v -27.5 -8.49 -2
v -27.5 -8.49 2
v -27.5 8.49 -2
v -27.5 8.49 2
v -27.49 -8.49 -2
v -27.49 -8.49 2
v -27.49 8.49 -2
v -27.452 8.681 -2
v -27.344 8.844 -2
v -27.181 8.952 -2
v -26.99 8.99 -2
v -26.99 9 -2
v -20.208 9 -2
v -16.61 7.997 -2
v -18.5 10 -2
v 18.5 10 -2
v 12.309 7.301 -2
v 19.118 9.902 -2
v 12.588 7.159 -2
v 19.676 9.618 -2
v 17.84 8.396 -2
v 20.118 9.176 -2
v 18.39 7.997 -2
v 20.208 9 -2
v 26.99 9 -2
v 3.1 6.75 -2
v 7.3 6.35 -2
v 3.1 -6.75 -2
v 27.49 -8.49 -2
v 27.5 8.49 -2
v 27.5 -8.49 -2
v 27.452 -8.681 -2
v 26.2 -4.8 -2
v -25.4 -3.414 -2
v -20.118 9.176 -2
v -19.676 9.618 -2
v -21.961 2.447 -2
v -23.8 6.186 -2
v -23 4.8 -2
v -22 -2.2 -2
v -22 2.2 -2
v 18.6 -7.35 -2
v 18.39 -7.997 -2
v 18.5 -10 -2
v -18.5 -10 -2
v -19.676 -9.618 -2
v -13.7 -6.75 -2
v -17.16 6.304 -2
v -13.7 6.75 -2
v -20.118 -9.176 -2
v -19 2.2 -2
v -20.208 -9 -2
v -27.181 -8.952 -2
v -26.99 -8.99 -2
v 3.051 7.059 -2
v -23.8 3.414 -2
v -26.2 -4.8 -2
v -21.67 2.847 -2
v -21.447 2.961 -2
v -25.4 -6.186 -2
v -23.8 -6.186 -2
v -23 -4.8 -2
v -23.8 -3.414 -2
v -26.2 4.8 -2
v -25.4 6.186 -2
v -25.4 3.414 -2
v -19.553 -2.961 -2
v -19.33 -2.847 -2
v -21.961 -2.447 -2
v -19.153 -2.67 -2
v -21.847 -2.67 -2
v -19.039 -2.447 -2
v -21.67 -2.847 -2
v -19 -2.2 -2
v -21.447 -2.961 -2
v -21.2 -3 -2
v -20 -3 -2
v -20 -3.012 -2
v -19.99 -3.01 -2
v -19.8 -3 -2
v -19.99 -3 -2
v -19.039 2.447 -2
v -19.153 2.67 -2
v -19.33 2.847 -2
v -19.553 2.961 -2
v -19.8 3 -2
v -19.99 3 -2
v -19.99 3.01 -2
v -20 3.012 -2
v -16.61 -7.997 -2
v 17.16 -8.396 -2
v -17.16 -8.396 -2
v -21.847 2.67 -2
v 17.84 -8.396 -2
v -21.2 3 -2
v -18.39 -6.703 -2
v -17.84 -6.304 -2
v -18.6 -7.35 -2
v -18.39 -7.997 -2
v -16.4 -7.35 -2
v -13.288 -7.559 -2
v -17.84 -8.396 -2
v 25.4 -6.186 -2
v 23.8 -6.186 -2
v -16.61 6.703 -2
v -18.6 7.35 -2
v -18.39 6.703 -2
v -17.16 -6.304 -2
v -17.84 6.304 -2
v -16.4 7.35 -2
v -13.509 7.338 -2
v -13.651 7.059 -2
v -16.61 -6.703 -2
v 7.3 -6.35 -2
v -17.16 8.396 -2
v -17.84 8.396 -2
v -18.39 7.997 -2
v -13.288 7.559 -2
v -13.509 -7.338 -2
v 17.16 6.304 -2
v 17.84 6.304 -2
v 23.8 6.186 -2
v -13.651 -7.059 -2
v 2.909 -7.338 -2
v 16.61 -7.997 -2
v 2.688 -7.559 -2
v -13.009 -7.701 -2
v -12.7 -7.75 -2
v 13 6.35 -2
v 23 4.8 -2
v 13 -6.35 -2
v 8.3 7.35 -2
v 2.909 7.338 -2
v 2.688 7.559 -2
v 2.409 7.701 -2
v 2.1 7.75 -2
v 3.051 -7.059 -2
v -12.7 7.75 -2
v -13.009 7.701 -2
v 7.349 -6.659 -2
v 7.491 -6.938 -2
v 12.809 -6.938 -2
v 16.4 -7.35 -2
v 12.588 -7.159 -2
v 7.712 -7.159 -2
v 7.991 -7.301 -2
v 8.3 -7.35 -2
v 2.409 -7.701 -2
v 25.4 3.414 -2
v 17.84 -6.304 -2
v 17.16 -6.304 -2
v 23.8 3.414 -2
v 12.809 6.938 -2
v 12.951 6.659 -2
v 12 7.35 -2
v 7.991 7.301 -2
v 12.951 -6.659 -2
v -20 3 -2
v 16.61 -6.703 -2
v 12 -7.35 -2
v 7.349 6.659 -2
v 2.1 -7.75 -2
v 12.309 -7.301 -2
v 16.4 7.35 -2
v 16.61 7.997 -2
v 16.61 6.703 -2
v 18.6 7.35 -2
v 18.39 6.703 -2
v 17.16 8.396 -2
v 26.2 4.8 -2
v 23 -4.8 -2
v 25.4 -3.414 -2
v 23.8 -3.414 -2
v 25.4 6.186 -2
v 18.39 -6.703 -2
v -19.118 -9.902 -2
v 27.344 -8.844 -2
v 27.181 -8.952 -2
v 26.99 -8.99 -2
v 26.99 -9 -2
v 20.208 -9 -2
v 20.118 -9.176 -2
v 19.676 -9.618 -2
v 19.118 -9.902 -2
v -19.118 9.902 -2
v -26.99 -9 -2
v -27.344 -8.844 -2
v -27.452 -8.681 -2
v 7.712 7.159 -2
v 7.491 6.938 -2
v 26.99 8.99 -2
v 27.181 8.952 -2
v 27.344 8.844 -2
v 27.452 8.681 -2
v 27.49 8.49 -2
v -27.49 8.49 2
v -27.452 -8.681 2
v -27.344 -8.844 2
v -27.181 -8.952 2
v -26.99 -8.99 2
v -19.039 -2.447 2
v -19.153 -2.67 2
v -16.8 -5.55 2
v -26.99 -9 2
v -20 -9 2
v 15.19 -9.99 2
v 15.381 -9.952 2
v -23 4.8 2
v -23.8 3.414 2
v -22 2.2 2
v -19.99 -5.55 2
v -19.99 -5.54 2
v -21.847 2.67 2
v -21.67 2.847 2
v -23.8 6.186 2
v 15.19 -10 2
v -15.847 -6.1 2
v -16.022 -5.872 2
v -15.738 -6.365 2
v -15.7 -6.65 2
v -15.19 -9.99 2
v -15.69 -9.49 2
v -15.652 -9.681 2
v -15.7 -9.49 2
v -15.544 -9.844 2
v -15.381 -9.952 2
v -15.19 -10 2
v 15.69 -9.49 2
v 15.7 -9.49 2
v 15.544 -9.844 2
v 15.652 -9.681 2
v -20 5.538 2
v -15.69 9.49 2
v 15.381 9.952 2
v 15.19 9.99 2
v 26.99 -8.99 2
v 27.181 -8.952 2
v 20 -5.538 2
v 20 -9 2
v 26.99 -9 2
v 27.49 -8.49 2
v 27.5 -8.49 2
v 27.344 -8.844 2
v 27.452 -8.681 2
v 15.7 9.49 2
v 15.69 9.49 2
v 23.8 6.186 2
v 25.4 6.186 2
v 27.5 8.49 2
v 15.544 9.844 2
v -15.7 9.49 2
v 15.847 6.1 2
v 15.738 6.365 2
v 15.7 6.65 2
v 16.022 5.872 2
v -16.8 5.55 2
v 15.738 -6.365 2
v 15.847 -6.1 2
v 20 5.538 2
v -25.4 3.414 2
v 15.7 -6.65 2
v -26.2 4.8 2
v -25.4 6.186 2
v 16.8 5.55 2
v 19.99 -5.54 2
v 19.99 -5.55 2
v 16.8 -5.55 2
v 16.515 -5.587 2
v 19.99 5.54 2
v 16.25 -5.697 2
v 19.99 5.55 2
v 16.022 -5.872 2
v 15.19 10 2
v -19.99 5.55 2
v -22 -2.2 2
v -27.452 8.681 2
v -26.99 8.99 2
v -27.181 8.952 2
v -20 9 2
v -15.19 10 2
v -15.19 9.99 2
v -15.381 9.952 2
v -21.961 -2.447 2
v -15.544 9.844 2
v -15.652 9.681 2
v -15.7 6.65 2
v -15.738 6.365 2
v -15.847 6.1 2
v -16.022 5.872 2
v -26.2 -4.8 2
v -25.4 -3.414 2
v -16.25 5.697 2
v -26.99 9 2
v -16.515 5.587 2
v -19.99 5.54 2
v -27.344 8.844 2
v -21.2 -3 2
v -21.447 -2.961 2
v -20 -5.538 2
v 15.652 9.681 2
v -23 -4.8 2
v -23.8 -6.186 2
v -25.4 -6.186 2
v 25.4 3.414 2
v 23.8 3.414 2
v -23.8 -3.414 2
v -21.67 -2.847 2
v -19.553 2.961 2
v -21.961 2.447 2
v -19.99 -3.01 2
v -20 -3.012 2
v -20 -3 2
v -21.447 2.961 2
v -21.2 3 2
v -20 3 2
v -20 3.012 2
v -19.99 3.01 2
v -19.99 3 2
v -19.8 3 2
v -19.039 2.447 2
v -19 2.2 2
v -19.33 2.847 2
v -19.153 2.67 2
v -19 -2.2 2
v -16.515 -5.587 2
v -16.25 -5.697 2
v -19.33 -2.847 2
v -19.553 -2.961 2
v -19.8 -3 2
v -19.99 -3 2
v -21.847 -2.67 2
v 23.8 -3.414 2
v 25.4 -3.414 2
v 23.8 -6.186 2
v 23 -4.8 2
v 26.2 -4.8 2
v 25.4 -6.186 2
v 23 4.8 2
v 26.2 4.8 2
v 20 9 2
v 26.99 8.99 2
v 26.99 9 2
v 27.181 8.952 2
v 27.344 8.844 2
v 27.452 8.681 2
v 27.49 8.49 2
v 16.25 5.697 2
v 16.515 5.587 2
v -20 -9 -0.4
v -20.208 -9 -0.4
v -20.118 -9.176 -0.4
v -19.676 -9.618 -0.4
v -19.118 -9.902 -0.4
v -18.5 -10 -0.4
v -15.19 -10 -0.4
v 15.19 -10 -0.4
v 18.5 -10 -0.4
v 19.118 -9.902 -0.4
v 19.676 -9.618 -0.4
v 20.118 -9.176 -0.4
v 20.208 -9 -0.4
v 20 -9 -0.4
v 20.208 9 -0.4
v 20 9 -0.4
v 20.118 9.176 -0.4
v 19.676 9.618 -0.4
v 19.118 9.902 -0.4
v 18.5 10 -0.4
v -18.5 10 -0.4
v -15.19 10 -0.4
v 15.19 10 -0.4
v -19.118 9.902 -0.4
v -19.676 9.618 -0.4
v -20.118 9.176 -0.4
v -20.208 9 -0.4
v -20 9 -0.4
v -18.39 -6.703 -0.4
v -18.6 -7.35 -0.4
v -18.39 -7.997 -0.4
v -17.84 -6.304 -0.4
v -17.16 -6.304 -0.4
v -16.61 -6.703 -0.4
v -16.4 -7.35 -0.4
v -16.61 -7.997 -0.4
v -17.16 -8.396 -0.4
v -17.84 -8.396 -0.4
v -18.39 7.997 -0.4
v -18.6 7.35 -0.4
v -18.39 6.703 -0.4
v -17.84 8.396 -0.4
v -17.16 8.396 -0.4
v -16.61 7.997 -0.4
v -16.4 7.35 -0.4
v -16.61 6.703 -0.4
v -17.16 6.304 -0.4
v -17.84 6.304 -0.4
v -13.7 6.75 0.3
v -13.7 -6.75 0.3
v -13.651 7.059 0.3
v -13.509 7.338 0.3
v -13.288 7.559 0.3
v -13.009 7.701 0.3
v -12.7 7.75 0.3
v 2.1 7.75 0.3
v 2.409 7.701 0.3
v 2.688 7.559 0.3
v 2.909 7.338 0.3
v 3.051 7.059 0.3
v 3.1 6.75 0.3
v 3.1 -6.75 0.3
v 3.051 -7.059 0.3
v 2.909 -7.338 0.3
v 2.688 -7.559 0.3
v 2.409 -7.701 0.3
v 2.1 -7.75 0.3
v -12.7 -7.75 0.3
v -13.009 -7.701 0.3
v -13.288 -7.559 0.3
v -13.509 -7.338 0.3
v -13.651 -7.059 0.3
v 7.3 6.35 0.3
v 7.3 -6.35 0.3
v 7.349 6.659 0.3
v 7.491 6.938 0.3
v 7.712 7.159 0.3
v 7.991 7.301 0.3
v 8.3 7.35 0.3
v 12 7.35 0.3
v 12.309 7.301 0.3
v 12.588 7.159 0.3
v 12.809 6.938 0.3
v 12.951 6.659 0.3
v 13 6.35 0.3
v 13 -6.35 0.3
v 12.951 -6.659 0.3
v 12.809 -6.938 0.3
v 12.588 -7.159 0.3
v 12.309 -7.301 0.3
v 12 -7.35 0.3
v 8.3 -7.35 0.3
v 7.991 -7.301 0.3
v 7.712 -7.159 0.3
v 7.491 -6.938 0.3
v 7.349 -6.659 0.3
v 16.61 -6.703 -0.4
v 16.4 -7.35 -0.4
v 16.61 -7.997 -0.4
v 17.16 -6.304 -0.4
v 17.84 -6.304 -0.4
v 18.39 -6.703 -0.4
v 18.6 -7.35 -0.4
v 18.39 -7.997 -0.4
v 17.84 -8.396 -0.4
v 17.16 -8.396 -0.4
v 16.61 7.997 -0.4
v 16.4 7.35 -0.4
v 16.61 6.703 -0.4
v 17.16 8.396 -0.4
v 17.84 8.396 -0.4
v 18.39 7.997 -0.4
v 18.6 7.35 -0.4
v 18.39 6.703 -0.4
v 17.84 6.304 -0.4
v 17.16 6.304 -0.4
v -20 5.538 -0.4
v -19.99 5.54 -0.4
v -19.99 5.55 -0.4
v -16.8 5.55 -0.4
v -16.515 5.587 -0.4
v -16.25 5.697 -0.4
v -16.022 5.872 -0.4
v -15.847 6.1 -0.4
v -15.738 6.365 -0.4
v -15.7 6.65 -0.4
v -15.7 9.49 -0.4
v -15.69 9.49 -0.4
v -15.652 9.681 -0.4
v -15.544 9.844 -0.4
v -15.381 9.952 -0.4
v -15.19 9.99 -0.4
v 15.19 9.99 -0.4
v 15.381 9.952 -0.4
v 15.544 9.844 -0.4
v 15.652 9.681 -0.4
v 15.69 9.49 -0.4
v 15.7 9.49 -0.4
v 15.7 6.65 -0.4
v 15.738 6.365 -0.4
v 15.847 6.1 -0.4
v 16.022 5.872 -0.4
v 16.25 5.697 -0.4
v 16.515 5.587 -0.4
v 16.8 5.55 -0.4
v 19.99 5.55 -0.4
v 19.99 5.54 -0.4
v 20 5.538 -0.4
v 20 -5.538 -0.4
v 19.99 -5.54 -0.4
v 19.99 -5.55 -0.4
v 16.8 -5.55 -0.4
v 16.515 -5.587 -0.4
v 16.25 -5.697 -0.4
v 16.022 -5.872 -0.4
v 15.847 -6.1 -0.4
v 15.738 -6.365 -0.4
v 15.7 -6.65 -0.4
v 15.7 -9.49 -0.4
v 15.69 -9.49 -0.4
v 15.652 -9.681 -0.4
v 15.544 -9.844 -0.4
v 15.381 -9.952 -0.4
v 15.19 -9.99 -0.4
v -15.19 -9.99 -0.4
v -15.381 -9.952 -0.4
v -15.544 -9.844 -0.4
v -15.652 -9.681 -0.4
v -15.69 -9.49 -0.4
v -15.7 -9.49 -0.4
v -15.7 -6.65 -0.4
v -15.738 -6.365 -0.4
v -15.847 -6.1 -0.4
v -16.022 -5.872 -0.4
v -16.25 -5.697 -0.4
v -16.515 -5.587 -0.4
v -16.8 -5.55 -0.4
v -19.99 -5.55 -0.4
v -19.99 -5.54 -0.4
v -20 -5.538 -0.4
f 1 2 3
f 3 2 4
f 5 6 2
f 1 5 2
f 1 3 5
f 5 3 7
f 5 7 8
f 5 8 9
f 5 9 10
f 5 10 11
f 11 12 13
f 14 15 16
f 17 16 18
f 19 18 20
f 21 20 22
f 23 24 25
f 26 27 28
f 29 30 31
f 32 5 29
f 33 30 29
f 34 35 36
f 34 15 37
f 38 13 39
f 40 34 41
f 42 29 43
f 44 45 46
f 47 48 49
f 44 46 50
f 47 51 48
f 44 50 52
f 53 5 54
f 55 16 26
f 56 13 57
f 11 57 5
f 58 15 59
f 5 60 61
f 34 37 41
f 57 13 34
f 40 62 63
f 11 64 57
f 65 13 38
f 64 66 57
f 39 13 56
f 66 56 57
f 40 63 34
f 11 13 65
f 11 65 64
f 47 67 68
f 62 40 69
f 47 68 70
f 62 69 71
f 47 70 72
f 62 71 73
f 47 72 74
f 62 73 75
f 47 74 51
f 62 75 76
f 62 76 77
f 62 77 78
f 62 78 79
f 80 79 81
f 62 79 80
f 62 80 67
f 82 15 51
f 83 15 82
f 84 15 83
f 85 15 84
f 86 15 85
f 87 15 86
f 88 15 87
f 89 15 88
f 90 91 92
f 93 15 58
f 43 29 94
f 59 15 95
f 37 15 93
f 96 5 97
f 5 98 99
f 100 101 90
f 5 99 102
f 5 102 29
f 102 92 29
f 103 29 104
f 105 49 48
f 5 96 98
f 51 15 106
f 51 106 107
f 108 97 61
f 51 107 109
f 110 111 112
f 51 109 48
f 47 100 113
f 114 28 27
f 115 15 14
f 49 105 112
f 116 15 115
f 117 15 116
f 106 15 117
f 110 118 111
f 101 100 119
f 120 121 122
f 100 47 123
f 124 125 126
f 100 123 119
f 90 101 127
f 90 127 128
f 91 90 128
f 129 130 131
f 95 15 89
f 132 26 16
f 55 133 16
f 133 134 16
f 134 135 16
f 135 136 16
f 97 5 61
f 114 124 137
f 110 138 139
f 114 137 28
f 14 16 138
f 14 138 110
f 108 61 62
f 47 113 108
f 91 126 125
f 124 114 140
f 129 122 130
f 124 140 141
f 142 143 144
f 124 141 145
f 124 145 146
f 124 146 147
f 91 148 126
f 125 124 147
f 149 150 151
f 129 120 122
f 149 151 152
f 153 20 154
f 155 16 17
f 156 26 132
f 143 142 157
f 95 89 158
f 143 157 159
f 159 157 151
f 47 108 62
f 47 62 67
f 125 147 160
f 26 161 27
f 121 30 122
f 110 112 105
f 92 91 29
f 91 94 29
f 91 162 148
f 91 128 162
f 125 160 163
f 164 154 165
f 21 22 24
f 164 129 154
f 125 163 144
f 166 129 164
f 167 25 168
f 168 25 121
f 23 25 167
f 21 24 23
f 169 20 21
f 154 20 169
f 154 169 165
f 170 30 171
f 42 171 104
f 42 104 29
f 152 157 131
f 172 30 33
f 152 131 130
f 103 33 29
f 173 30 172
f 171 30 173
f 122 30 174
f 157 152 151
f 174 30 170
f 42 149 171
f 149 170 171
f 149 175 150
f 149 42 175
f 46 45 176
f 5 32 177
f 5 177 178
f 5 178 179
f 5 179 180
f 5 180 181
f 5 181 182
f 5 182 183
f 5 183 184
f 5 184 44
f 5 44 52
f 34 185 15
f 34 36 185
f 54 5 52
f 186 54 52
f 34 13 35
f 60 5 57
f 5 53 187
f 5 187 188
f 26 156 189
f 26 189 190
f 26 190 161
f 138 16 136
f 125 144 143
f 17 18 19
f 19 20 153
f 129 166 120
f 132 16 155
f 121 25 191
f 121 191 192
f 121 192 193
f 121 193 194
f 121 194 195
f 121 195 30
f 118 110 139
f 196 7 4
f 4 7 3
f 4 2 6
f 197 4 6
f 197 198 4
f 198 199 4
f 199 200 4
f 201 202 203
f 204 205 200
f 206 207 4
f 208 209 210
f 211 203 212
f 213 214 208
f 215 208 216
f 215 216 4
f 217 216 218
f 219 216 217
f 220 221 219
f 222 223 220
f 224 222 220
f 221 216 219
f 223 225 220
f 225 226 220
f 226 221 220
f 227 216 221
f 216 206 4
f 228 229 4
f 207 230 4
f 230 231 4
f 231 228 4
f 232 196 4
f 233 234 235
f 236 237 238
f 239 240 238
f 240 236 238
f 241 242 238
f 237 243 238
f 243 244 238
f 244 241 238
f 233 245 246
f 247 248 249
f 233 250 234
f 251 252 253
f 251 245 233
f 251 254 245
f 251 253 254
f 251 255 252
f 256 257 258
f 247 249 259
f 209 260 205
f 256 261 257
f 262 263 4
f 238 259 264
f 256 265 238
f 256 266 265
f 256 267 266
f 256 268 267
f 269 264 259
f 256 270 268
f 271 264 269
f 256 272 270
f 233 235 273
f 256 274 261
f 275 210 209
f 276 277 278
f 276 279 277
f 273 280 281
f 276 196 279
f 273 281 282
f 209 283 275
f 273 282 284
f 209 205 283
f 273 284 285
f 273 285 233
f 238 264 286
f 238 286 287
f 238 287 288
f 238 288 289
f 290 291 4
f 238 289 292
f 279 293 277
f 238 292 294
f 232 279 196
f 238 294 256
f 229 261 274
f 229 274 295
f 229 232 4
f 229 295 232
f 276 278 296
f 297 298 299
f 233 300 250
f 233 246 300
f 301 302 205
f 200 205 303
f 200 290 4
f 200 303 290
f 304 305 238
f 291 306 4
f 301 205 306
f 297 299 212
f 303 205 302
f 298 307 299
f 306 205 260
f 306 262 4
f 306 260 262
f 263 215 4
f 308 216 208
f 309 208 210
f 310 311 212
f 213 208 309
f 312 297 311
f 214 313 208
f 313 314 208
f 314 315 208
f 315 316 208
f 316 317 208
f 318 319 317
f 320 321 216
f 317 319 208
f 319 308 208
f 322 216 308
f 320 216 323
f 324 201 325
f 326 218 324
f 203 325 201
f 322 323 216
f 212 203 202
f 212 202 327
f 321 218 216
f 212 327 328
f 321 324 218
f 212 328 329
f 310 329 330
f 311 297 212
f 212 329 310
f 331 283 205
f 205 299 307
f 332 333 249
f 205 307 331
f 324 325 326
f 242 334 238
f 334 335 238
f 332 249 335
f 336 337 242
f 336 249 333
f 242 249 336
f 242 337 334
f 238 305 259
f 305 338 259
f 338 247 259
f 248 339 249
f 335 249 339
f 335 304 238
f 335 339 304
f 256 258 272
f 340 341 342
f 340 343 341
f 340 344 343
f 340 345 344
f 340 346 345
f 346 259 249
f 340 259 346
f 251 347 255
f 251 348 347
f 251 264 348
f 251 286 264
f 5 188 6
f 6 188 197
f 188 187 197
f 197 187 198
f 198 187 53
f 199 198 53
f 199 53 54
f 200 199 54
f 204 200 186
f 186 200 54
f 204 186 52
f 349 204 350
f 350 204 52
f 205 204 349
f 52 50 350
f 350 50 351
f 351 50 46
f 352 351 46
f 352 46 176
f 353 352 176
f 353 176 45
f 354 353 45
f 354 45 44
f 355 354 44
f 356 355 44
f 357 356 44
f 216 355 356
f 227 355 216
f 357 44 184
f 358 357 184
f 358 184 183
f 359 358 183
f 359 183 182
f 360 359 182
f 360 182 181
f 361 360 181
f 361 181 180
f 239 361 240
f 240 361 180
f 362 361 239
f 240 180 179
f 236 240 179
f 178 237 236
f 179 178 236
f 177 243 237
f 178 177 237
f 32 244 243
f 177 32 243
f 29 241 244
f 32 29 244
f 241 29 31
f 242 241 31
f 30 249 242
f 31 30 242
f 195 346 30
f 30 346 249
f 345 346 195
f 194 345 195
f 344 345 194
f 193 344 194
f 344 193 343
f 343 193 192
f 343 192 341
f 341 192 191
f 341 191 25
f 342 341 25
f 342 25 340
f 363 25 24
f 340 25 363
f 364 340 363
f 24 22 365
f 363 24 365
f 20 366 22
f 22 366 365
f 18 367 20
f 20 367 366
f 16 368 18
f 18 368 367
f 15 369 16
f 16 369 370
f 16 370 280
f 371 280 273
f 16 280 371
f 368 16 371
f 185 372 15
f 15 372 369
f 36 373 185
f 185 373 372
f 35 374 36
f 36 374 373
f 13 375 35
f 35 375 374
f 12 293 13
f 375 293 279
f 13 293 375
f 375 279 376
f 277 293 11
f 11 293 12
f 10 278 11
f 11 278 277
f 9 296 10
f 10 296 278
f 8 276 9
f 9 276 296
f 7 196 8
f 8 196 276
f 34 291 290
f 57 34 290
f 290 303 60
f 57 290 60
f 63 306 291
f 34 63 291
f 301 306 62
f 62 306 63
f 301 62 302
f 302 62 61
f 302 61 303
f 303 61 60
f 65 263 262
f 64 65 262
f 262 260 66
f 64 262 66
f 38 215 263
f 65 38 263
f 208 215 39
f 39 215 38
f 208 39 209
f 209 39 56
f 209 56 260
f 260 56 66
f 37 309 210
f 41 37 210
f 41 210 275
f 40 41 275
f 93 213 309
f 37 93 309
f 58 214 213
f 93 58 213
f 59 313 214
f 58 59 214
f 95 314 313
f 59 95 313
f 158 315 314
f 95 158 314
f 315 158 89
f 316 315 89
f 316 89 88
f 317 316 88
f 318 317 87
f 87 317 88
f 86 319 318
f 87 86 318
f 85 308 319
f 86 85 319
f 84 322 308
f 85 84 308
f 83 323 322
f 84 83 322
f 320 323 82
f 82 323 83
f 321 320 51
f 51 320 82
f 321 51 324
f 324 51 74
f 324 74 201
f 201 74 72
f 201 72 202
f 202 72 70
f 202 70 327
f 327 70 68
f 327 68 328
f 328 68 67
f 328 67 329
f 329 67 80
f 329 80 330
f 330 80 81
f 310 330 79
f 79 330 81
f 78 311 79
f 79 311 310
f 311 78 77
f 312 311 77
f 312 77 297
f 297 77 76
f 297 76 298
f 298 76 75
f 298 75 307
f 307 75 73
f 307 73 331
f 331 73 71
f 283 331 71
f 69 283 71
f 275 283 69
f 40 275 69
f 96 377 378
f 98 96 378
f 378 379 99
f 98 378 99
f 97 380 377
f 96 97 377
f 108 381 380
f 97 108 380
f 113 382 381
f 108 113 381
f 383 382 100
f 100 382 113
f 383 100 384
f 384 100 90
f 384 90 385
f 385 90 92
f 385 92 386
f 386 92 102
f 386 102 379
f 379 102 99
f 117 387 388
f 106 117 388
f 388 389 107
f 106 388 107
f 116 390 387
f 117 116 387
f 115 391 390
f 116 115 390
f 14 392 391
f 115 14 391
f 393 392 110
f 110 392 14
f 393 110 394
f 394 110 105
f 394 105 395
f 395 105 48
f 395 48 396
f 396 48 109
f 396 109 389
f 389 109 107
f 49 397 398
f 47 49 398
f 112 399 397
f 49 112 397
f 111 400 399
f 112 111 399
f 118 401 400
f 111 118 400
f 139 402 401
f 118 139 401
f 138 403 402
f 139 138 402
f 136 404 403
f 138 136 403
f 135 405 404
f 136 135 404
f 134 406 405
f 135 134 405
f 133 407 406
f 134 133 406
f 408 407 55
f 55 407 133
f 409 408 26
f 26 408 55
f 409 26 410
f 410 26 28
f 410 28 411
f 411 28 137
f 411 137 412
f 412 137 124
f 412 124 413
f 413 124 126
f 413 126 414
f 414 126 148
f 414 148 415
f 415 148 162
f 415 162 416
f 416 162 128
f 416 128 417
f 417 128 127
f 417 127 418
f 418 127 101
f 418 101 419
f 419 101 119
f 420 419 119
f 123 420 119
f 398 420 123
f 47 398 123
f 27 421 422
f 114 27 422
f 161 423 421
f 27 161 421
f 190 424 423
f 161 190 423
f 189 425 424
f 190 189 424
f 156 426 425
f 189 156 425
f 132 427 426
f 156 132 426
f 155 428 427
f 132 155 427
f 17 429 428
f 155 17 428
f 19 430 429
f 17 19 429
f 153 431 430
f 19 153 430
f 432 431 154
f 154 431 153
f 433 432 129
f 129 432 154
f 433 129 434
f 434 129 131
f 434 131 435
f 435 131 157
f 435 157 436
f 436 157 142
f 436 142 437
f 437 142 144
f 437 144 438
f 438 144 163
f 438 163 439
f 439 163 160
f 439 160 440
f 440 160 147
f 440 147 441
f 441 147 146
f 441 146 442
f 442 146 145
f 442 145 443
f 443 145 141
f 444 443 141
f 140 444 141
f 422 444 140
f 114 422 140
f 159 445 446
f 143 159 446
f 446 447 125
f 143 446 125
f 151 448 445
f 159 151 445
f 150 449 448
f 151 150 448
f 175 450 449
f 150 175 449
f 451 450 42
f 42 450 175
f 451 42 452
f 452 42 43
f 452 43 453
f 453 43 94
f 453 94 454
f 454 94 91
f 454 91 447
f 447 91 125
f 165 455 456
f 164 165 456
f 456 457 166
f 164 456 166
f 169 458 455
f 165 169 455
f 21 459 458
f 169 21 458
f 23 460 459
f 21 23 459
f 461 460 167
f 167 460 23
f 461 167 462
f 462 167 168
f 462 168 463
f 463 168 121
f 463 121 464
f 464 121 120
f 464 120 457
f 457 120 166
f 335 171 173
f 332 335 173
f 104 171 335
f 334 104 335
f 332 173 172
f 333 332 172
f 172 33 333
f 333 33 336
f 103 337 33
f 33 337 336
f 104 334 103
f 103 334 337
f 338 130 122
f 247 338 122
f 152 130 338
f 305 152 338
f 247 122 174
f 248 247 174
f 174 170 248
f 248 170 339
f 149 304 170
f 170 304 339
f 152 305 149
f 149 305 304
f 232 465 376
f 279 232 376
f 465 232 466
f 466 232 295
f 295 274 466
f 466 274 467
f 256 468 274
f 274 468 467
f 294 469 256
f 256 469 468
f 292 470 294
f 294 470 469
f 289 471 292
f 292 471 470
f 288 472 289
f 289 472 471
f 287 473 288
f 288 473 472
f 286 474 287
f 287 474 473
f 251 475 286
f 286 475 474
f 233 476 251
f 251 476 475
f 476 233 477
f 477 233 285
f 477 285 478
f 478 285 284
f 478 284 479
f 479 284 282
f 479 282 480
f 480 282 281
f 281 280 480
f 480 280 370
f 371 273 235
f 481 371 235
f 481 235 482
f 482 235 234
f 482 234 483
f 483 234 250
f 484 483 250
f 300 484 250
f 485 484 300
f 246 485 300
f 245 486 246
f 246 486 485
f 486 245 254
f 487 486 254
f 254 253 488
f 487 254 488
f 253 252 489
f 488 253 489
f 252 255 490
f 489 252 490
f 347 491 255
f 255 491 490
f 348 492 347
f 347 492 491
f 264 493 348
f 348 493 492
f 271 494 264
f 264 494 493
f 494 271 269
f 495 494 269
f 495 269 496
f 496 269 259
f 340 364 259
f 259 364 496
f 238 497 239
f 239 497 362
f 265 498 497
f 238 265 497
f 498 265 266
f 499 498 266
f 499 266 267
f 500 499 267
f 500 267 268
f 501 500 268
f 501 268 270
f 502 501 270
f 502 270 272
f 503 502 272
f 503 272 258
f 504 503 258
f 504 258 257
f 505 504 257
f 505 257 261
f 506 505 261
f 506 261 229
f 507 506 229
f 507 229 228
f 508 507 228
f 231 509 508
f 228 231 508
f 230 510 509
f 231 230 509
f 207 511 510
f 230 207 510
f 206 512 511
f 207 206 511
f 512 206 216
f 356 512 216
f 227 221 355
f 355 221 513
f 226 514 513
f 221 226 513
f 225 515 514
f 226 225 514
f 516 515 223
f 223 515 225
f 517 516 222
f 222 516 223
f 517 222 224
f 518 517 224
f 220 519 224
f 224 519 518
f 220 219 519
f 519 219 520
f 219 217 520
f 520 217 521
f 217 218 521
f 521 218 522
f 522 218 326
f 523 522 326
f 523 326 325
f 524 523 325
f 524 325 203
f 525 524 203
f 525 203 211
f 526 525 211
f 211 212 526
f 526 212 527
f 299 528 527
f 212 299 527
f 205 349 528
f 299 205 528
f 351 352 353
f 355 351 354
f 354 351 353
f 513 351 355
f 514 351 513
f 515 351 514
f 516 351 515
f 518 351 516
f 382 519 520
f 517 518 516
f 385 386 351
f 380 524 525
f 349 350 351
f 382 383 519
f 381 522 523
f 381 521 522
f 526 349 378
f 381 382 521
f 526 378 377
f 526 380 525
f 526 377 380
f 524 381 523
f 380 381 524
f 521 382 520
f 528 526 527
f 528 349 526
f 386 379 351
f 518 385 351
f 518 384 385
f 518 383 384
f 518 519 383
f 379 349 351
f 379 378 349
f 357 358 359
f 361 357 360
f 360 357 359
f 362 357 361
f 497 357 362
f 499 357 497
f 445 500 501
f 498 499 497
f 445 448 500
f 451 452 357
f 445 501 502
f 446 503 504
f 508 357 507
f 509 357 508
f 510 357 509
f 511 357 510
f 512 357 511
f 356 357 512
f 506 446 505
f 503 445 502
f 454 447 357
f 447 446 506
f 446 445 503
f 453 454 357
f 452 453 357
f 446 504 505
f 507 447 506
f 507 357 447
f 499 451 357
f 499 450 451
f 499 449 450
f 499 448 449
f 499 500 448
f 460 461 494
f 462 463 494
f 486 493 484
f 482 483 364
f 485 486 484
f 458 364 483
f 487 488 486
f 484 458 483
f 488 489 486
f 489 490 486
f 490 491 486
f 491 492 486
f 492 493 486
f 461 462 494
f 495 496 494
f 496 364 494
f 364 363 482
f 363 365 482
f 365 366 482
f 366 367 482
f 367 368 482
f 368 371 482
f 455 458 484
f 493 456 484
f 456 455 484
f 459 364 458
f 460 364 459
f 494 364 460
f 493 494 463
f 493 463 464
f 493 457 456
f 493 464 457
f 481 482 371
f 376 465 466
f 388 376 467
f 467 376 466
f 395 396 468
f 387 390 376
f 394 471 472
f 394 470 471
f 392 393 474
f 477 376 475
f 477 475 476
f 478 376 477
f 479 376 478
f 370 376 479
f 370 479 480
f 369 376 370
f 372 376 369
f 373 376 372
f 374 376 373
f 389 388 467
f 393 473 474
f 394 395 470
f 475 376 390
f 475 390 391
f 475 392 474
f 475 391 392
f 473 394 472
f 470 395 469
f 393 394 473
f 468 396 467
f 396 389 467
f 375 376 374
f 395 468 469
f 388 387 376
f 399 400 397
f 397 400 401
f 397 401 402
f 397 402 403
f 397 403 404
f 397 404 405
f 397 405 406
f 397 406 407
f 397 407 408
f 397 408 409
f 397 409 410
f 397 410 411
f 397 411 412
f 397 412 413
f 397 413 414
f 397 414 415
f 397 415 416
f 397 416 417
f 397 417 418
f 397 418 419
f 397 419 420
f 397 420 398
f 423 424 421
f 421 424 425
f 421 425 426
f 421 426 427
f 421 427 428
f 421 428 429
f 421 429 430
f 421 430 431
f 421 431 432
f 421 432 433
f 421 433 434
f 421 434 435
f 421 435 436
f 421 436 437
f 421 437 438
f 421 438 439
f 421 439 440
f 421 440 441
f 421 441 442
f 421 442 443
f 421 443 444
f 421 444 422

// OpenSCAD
// file: obiscad/attach.scad
//---------------------------------------------------------------
//-- Openscad Attachment library
//-- Attach easily parts. Make your designs more reusable
//---------------------------------------------------------------
//-- This is a component of the obiscad opescad tools by Obijuan
//-- (C) Juan Gonzalez-Gomez (Obijuan)
//-- Sep-2012
//---------------------------------------------------------------
//-- Released under the GPL license
//---------------------------------------------------------------

use <vector.scad>

module connector(c)
{
  p = c[0];
  v = c[1];
  ang = c[2];

  color("Gray") point(p);
  translate(p)
    color("Gray") vector(unitv(v)*6,l_arrow=2);
}


//-- a,b are connectors
module attach(a,b)
{
  //-- Get the data from the connectors
  vref = b[1];
  v = a[1];
  roll=a[2];
  pos1 = a[0];
  pos2 = b[0];

  //-------- Calculations for the "orientate operator"
  //-- Calculate the rotation axis
  raxis = cross(vref,v);
    
  //-- Calculate the angle between the vectors
  ang = anglev(vref,v);

  translate(pos1)
    //-- Orientate operator
    rotate(a=roll, v=v)  rotate(a=ang, v=raxis)
      translate(-pos2)
	child(0); 
}

module arm(debug=false)
{
  
  cube(asize,center=true);

  if (debug) {
    frame(l=10);
    connector(a);
  }
}

module Test()
{
  cube(size,center=true);
  attach(c1,a) arm(debug=true);
  attach(c2,a) arm();
}

//-- Main part
size = [10,10,10];
c1 = [ [0,0,size[2]/2], [0,0,1], 10];
c2 = [ [-size[0]/2,0,0], [-1,0,0], 90 ];

*connector(c1);
*connector(c2);
*cube(size,center=true);


//-- Attachable part
asize = [5,20,3];
a = [ [0,asize[1]/2-3,-asize[2]/2], [0,0,1], 0  ];

*translate([30,0,0])  arm(debug=true);

*attach(c1,a) arm();
*attach(c2,a) arm();
  

orientate([1,1,1])
Test();
// file: obiscad/bcube.scad
//------------------------------------------------------------------------------
//  Bevel edge cube.
//  (c) Juan Gonzalez-Gomez (Obijuan), Sep-2012
//------------------------------------------------------------------------------

//----------------- IMPLEMENTATION USING THE MINKOWSKI OPERATOR ----------------

//------------------------------------------------------------------------------
//-- Bevel Cube main function
//-- Parameters:
//--   * Size:  Cube size
//--   * cr : Corner radius (if cr==0, a standar cube is built)
//--   * cres:  Corner resolution (in points). cres=0 means flat corners
//------------------------------------------------------------------------------
module bcube(size,cr=0,cres=0)
{
  //-- Internal cube size
  bsize = size - 2*[cr,cr,0];

  //-- Get the (x,y) coorner coordinates in the 1st cuadrant
  x = bsize[0]/2;
  y = bsize[1]/2;

  //-- A corner radius of 0 means a standar cube!
  if (cr==0)
    cube(bsize,center=true);
  else {

      
      //-- The height of minkowski object is double. So
      //-- we sould scale by 0.5
      scale([1,1,0.5])

      //-- This translation is for centering the minkowski objet
      translate([-x, -y,0])

      //-- Built the  beveled cube with minkowski
      minkowski() {

        //-- Internal cube
        cube(bsize,center=true);

        //-- Cylinder in the corner (1st cuadrant)
        translate([x,y, 0])
          cylinder(r=cr, h=bsize[2],center=true, $fn=4*(cres+1));
      }
  }

}


//-- Examples of use of the bcube() module

//-- Standar cube
translate([-15,15,0])
bcube([20,20,10]);

//-- Beveled cube (0 point resolution)
translate([15,15,0])
  bcube([20,20,10],cr=4);

//-- Beveled cube (1 point resolution)
translate([-15,-15,0])
  bcube([20,20,10],cr=4, cres=1);

//-- Beveled cube (4 points resolution)
translate([15,-15,0])
  bcube([20,20,10],cr=4, cres=4);
// file: obiscad/utils.scad
//---------------------------------------------------------------
//-- Utils. General utilities...
//-- This is a component of the obiscad opescad tools by Obijuan
//-- (C) Juan Gonzalez-Gomez (Obijuan)
//-- Sep-2012
//---------------------------------------------------------------
//-- Released under the GPL license
//---------------------------------------------------------------

//-----------------------------------------------------
//-- Functions for converting a scalar into a vector:
//-----------------------------------------------------
//-- The scalar is interpreted as the x coordinate
function VX(x) = [x,0,0];

//-- The scalar is interpreted as the y coordinate
function VY(y) = [0,y,0];

//-- The scalar is interpreted as the z coordinate
function VZ(z) = [0,0,z];


//-----------------------------------------
//-- Definition for accessing vector componentes easily
//--------------------------------------------------------
X = 0;
Y = 1;
Z = 2;
// main file
//-------------------------------------------------------------------
//-- Servo Lower cover
//-- (c) Juan Gonzalez-Gomez (Obijuan). May-2013
//-------------------------------------------------------------------
//-- The original cover has been design for the Futaba 3003 servos
//-- But, as it is a parameterized design, the user can easily
//-- adapt to other servos
//--
//--  In addition, it is very easy to modify the cover to add a fake
//--- shaft, or in general customize it for improving the design
//--
//--  It is particulary interesting for designing robots. If a fake
//--  shaft is included, the mechanical designs are greatly simplified! 
//-------------------------------------------------------------------
//-- Released under the GPL license. 
//-------------------------------------------------------------------

//---  Obiscad!!
include <obiscad/utils.scad>
use <obiscad/bcube.scad>
use <obiscad/attach.scad>
use <obiscad/bevel.scad>

//-----------------------------------------------------------------------------------
//-- USER AREA. The user should change this parameters depending on the Servo used  
//-- The default values have been calculated for the SERVO FUTABA 3003
//-----------------------------------------------------------------------------------

//-- Fake shaft
fake_shaft = false;   //-- Set to false for removing
fake_shaft_len = 6;  //-- Shaft length
fake_shaft_diam = 8;  //-- Shaft diameter
fake_shaft_xpos = -10.1;  //-- X coordinate of the shaf position



//-------------------------- Main Base --------------------------
bsize = [41, 20, 4];  //-- base size
b_cr=2;               //-- Base corner radius
b_cres=4;             //-- Baser corner resolution


//-- ----------------------- Screw cutouts ----------------------
//-- These are the areas removed from the main base to give
//-- room to the screw heads
screw_lh = 1.6;         //- Screw layer height, Relative to the bottom
screw_head_diam = 3.2;  //-- Screw head diameter
screw_head_clear = 0.2; //-- Space between the screw head and the base


//-------------------------- Drills ------------------------------
ddiam=2.2;  //-- Drills diameter
ddx=35;     //-- Distance in the x axis between the drills
ddy=14.7;   //-- Distance in the y axis between the distance

//-------------------------- Electronic cutouts -------------------
//-- These are removed from the bottom of the base to make room
//-- for the servo electronics
elec_cutout_lh = 2.3;

//-- dimensions (on xy plane) of the cutouts
elec_cutout_dim = [
  [16.8, 15.5],   //-- Left cutout
  [5.7,  14.7],   //-- Right cutout
];

//-- Distance from the nearer drill (on the x axis)
//-- (not from the drill center, but the nearest drill surface)
//-- (so that it can be meassured easily with a caliper)
elec_cutout_clearx = [
  2.7, 3.4
];

elec_co_cr = 1;    //-- Corner radius
elec_co_cres = 4;  //-- Corner resolution

//-------------------------- Cable hole ----------------------------
//-- Cable hole dimensions
cable_hole_dim = [1.5, 6];

ch_cr = 0.8;  //-- Cable hole corner radius
ch_cres = 4;  //-- Cable hole corner resolution

//------------------------ Beveled edges -----------------------------
bevel_cr = 0.5;


//------------------------ Servo ears -----------------------
servo_ears = true;

//-- Estandar futaba ears
//ears_size = [7.0, 18, 2.5];


//-- Ears with the same height than the cover
//-- Uncomment if needed
ears_size = [7.0, 18, bsize[Z]];

ears_drill = 3.2;

//-- Penetration of ear in the cover
ear_pen = 0.5;  

//-- Ear drill coordinates
ear_drill_pos = [4.1, 9.6/2, 0];


//---------------------------------------------------------------------------------
//---        IMPLEMENTATION!!
//---------------------------------------------------------------------------------
//--  The USER should be able to change the base modifying only the above
//--  user parameters
//--
//--  The implementation is divided into 2 stages:
//--
//--  1) DATA calculation: It creates tables and definitions for further
//--     build the base more easily
//--  2) CODE: It just build the Servo Base, based only on the data
//-----------------------------------------------------------------------------------


//---------------------------------------
//-- DATA for the drills
//---------------------------------------
//-- Calculate the drill coordinates from the center of the base
dx=ddx/2;
dy=ddy/2;

//-- Build the drill table, for automating the process of 
//-- making drills
//-- All the drill are symetric respect the x and y axis
drill_table = [
  [dx,   dy, 0],
  [-dx,  dy, 0],
  [-dx, -dy, 0],
  [dx,  -dy, 0],
];


//-------------------------------------------------------------
//-- DATA for the First layer: screw layer
//-------------------------------------------------------------

//-- Extra value. Does not matter the value (but it should be > 0
extra = 5;


//-- Calculate the clear distance from the drill center
clear = screw_head_diam/2 + screw_head_clear;

//-- Calculate the cutout size
scx = bsize[X]/2-drill_table[0][X]+clear+extra;
scy = bsize[Y]/2-drill_table[0][Y]+clear+extra;
screw_cutout_size = [scx,scy, bsize[Z]];

//-- vector for the z position of the cutouts:
//-- They are screw_lh high from the bottom 
sc_z = [0,0, -bsize[Z]/2+screw_lh];


//-- Connector table. It contains the pairs of connectors for performing
//-- the attach operation.
//-- The first connector of the pair belongs to the base, the second to the cutout
//-- The connectors coordinates are relative to the drills
screw_connector_table = [

  //-- First quadrant
  [ [drill_table[0]+[-clear, -clear,0]+sc_z, [0,0,1], 0 ],  //-- First pair of connectors
   [[-screw_cutout_size[X]/2, -screw_cutout_size[Y]/2, -screw_cutout_size[Z]/2],[0,0,1],0]
  ],

  //-- Second quadrant
  [ [drill_table[1]+[clear, -clear,0]+sc_z, [0,0,1], 0 ],
    [[screw_cutout_size[X]/2, -screw_cutout_size[Y]/2, -screw_cutout_size[Z]/2],[0,0,1],0]
  ],

  //-- Third quadrant
  [ [drill_table[2]+[clear, clear,0]+sc_z, [0,0,1], 0 ],
    [[screw_cutout_size[X]/2, screw_cutout_size[Y]/2, -screw_cutout_size[Z]/2],[0,0,1],0]
  ],

  //-- Forth quadrant
  [ [drill_table[3]+[-clear, clear,0]+sc_z, [0,0,1], 0 ],
    [[-screw_cutout_size[X]/2, screw_cutout_size[Y]/2, -screw_cutout_size[Z]/2],[0,0,1],0]
  ],
 
];

//---------------------------------------
//-- DATA for the electronics cutouts
//---------------------------------------

//-- vector for the z position of the cutouts:
//-- They are elec_cutout_lh high from the bottom 
ec_z = [0,0, -bsize[Z]/2+elec_cutout_lh];

//-- Auxiliary table with the cutout size
elec_co_size = [
  [elec_cutout_dim[0][X], elec_cutout_dim[0][Y], bsize[Z]],
  [elec_cutout_dim[1][X], elec_cutout_dim[1][Y], bsize[Z]]
];


//-- Connector table. It contains the pairs of connectors for performing
//-- the attach operation.
//-- The first connector of the pair belongs to the base, the second to the cutout
//-- The connectors coordinates are relative to the drills
elec_connector_table = [

  //-- Connector pair for the Left cutout (relative to the upper-left drill)
  [ [VX(drill_table[1][X]+ddiam/2+elec_cutout_clearx[0])+
     VY(elec_co_size[0][Y]/2)+ ec_z,
     [0,0,1], 0],                        //-- Base connector
     
    [[-elec_co_size[0][X]/2, elec_co_size[0][Y]/2 ,elec_co_size[0][Z]/2],[0,0,1],0]
  ],
 
  //-- connector pair for the right cutout (relative to the upper-right drill)
  [ [VX(drill_table[0][X]-ddiam/2-elec_cutout_clearx[1])+
     VY(elec_co_size[1][Y]/2)+ec_z,
     [0,0,1], 0],

    [[elec_co_size[1][X]/2, elec_co_size[1][Y]/2 ,elec_co_size[1][Z]/2],[0,0,1],0]
  ],

];

//--------------------------------
//-- DATA for the cable hole
//--------------------------------
//-- Calculate the cable hole size
//-- In the x-axis is doble sized
ch_size = [2*cable_hole_dim[X], cable_hole_dim[Y], bsize[Z]+extra];

//-- Connectors pair for attaching a bcube and make the difference
ch_conn_pair = [
  [[-bsize[X]/2,0,0], [0,0,1], 0],
  [[0,0,0], [0,0,1], 0],
];

//---------------------------------------
//-- DATA for beveling some edges
//---------------------------------------

//-- Table of Pair of connectors for beveling
//-- corner connector, normal connect and bevel length
bevel_table = [
  
  //-- cable hole external corners
  //-- Upper
  [ [[-bsize[X]/2, ch_size[Y]/2 ,0], [0 ,0 ,1], 0],
    [[-bsize[X]/2, ch_size[Y]/2 ,0], [-1,-1,0], 0],
    bsize[Z]+extra 
  ],

  //-- Lower
  [ [[-bsize[X]/2, -ch_size[Y]/2 ,0], [0 ,0 ,1], 0],
    [[-bsize[X]/2, -ch_size[Y]/2 ,0], [-1,1,0], 0],
    bsize[Z]+extra 
  ],

  //-- Beveling the Upper-left screw cutout (1) 
  [ [[-bsize[X]/2, drill_table[1][Y]-clear ,bsize[Z]/2], [0 ,0 ,1], 0],
    [[-bsize[X]/2, drill_table[1][Y]-clear ,bsize[Z]/2], [-1,1,0], 0],
    2*(bsize[Z]-screw_lh) 
  ],

  //-- Beveling the Upper-left screw cutout (2) 
  [ [[drill_table[1][X]+clear, bsize[Y]/2 ,bsize[Z]/2], [0 ,0 ,1], 0],
    [[drill_table[1][X]+clear, bsize[Y]/2 ,bsize[Z]/2], [-1,1,0], 0],
    2*(bsize[Z]-screw_lh) 
  ],

   //-- Beveling the lower-left screw cutout (1) 
  [ [[-bsize[X]/2, drill_table[2][Y]+clear ,bsize[Z]/2], [0 ,0 ,1], 0],
    [[-bsize[X]/2, drill_table[2][Y]+clear ,bsize[Z]/2], [-1,-1,0], 0],
    2*(bsize[Z]-screw_lh) 
  ],

  //-- Beveling the lower-left screw cutout (2) 
  [ [[drill_table[2][X]+clear, -bsize[Y]/2 ,bsize[Z]/2], [0 ,0 ,1], 0],
    [[drill_table[2][X]+clear, -bsize[Y]/2 ,bsize[Z]/2], [-1,-1,0], 0],
    2*(bsize[Z]-screw_lh) 
  ], 

  //-- Beveling the Upper-right screw cutout (1) 
  [ [[bsize[X]/2, drill_table[0][Y]-clear ,bsize[Z]/2], [0 ,0 ,1], 0],
    [[bsize[X]/2, drill_table[0][Y]-clear ,bsize[Z]/2], [1,1,0], 0],
    2*(bsize[Z]-screw_lh) 
  ],

  //-- Beveling the Upper-right screw cutout (2) 
  [ [[drill_table[0][X]-clear, bsize[Y]/2 ,bsize[Z]/2], [0 ,0 ,1], 0],
    [[drill_table[0][X]-clear, bsize[Y]/2 ,bsize[Z]/2], [1,1,0], 0],
    2*(bsize[Z]-screw_lh) 
  ],

   //-- Beveling the lower-right screw cutout (1) 
  [ [[bsize[X]/2, drill_table[3][Y]+clear ,bsize[Z]/2], [0 ,0 ,1], 0],
    [[bsize[X]/2, drill_table[3][Y]+clear ,bsize[Z]/2], [1,-1,0], 0],
    2*(bsize[Z]-screw_lh) 
  ],

  //-- Beveling the lower-right screw cutout (2) 
  [ [[drill_table[3][X]-clear, -bsize[Y]/2 ,bsize[Z]/2], [0 ,0 ,1], 0],
    [[drill_table[3][X]-clear, -bsize[Y]/2 ,bsize[Z]/2], [1,-1,0], 0],
    2*(bsize[Z]-screw_lh) 
  ], 

];

//----------------------------------
//--  Fake shaft
//----------------------------------
//-- Define the connector pair
fs_con_pair = [
  [ [fake_shaft_xpos, 0, bsize[Z]/2],[0,0,1], 0],
  [[0,0,-fake_shaft_len/2],[0,0,1],0]
];

//-------------------------------
//--  DATA for the servo ears
//--------------------------------
//-- Calculate the ears position
ears_pos = [-ears_size[X]/2 - bsize[X]/2,0, ears_size[Z]/2 - bsize[Z]/2];

//-- Connector pais for beveling the servo ears
ear_conn_pair1 = [
    [[-ears_size[X]/2, ears_size[Y]/2, 0], [0,0,1],0],
    [[-ears_size[X]/2, ears_size[Y]/2, 0], [-1,1,0], 0],
];

ear_conn_pair2 = [
    [[-ears_size[X]/2, -ears_size[Y]/2, 0], [0,0,1],0],
    [[-ears_size[X]/2, -ears_size[Y]/2, 0], [-1,-1,0], 0],
];

module servo_ear()
{

  difference() {
    translate([ear_pen/2,0,0])  //-- ear_pen
      cube([ears_size[X]+ear_pen, ears_size[Y], ears_size[Z]], center = true );

    //-- Upper drill
    translate([ears_size[X]/2 - ear_drill_pos[X], ear_drill_pos[Y],0])
      cylinder(r=ears_drill/2, h = ears_size[Z]+extra, center = true);

    //-- Lower drill
    translate([ears_size[X]/2 - ear_drill_pos[X], -ear_drill_pos[Y],0])
      cylinder(r=ears_drill/2, h = ears_size[Z]+extra, center = true);
      
    //-- Bevel the left corners
    bevel(ear_conn_pair1[0], ear_conn_pair1[1], ears_size[Z]+extra, cr = bevel_cr);
    bevel(ear_conn_pair2[0], ear_conn_pair2[1], ears_size[Z]+extra, cr = bevel_cr);
  }
  
}

//----------------------------------------------------------------
//---         CODE!!
//----------------------------------------------------------------
//-- No numbers. Just the actions for creating the base
//-- It is very easy to remove parts: comment them out!
//-----------------------------------------------------------------


difference() {

  //-- Main Base
  bcube(bsize,cr=b_cr, cres=b_cres);
  
  //-- Screw cutouts
  for (con_pair = screw_connector_table) {
    attach(con_pair[0], con_pair[1])
      bcube(screw_cutout_size, cr=ddiam/2, cres=5);
  }
  

  //-- Drills
  for (pos  = drill_table) {
    translate(pos)
      cylinder(r=ddiam/2, h=bsize[Z]+extra, center=true, $fn=10);
  }

  //-- Electronics cutouts
  for (i=[0:1]) {
    attach(elec_connector_table[i][0], elec_connector_table[i][1])
      bcube(elec_co_size[i] , cr=elec_co_cr, cres = elec_co_cres);
  }

  //-- Cable hole
  attach(ch_conn_pair[0],ch_conn_pair[1])
    bcube(ch_size, cr=ch_cr, cres=ch_cres);

  //-- Beveling the edges
  for (tuple = bevel_table)
    bevel( tuple[0], tuple[1], l=tuple[2], cr=bevel_cr);

}


//-- Fake shaft

if (fake_shaft) {
  attach(fs_con_pair[0], fs_con_pair[1])
    cylinder(r=fake_shaft_diam/2, h=fake_shaft_len,center=true, $fn=50);
}



//--- Servo ears
if (servo_ears) {

  //-- Left ear. It has a cutout for making room for the wire
  translate(ears_pos) {
    difference() {
      servo_ear();
      translate([ears_size[X]/2,0,0])
        bcube(ch_size, cr=ch_cr, cres=ch_cres);
    }  
  }

  //-- Right ear
  translate([-ears_pos[X],0,ears_pos[Z]])
  mirror([1,0,0])
  servo_ear();
}
